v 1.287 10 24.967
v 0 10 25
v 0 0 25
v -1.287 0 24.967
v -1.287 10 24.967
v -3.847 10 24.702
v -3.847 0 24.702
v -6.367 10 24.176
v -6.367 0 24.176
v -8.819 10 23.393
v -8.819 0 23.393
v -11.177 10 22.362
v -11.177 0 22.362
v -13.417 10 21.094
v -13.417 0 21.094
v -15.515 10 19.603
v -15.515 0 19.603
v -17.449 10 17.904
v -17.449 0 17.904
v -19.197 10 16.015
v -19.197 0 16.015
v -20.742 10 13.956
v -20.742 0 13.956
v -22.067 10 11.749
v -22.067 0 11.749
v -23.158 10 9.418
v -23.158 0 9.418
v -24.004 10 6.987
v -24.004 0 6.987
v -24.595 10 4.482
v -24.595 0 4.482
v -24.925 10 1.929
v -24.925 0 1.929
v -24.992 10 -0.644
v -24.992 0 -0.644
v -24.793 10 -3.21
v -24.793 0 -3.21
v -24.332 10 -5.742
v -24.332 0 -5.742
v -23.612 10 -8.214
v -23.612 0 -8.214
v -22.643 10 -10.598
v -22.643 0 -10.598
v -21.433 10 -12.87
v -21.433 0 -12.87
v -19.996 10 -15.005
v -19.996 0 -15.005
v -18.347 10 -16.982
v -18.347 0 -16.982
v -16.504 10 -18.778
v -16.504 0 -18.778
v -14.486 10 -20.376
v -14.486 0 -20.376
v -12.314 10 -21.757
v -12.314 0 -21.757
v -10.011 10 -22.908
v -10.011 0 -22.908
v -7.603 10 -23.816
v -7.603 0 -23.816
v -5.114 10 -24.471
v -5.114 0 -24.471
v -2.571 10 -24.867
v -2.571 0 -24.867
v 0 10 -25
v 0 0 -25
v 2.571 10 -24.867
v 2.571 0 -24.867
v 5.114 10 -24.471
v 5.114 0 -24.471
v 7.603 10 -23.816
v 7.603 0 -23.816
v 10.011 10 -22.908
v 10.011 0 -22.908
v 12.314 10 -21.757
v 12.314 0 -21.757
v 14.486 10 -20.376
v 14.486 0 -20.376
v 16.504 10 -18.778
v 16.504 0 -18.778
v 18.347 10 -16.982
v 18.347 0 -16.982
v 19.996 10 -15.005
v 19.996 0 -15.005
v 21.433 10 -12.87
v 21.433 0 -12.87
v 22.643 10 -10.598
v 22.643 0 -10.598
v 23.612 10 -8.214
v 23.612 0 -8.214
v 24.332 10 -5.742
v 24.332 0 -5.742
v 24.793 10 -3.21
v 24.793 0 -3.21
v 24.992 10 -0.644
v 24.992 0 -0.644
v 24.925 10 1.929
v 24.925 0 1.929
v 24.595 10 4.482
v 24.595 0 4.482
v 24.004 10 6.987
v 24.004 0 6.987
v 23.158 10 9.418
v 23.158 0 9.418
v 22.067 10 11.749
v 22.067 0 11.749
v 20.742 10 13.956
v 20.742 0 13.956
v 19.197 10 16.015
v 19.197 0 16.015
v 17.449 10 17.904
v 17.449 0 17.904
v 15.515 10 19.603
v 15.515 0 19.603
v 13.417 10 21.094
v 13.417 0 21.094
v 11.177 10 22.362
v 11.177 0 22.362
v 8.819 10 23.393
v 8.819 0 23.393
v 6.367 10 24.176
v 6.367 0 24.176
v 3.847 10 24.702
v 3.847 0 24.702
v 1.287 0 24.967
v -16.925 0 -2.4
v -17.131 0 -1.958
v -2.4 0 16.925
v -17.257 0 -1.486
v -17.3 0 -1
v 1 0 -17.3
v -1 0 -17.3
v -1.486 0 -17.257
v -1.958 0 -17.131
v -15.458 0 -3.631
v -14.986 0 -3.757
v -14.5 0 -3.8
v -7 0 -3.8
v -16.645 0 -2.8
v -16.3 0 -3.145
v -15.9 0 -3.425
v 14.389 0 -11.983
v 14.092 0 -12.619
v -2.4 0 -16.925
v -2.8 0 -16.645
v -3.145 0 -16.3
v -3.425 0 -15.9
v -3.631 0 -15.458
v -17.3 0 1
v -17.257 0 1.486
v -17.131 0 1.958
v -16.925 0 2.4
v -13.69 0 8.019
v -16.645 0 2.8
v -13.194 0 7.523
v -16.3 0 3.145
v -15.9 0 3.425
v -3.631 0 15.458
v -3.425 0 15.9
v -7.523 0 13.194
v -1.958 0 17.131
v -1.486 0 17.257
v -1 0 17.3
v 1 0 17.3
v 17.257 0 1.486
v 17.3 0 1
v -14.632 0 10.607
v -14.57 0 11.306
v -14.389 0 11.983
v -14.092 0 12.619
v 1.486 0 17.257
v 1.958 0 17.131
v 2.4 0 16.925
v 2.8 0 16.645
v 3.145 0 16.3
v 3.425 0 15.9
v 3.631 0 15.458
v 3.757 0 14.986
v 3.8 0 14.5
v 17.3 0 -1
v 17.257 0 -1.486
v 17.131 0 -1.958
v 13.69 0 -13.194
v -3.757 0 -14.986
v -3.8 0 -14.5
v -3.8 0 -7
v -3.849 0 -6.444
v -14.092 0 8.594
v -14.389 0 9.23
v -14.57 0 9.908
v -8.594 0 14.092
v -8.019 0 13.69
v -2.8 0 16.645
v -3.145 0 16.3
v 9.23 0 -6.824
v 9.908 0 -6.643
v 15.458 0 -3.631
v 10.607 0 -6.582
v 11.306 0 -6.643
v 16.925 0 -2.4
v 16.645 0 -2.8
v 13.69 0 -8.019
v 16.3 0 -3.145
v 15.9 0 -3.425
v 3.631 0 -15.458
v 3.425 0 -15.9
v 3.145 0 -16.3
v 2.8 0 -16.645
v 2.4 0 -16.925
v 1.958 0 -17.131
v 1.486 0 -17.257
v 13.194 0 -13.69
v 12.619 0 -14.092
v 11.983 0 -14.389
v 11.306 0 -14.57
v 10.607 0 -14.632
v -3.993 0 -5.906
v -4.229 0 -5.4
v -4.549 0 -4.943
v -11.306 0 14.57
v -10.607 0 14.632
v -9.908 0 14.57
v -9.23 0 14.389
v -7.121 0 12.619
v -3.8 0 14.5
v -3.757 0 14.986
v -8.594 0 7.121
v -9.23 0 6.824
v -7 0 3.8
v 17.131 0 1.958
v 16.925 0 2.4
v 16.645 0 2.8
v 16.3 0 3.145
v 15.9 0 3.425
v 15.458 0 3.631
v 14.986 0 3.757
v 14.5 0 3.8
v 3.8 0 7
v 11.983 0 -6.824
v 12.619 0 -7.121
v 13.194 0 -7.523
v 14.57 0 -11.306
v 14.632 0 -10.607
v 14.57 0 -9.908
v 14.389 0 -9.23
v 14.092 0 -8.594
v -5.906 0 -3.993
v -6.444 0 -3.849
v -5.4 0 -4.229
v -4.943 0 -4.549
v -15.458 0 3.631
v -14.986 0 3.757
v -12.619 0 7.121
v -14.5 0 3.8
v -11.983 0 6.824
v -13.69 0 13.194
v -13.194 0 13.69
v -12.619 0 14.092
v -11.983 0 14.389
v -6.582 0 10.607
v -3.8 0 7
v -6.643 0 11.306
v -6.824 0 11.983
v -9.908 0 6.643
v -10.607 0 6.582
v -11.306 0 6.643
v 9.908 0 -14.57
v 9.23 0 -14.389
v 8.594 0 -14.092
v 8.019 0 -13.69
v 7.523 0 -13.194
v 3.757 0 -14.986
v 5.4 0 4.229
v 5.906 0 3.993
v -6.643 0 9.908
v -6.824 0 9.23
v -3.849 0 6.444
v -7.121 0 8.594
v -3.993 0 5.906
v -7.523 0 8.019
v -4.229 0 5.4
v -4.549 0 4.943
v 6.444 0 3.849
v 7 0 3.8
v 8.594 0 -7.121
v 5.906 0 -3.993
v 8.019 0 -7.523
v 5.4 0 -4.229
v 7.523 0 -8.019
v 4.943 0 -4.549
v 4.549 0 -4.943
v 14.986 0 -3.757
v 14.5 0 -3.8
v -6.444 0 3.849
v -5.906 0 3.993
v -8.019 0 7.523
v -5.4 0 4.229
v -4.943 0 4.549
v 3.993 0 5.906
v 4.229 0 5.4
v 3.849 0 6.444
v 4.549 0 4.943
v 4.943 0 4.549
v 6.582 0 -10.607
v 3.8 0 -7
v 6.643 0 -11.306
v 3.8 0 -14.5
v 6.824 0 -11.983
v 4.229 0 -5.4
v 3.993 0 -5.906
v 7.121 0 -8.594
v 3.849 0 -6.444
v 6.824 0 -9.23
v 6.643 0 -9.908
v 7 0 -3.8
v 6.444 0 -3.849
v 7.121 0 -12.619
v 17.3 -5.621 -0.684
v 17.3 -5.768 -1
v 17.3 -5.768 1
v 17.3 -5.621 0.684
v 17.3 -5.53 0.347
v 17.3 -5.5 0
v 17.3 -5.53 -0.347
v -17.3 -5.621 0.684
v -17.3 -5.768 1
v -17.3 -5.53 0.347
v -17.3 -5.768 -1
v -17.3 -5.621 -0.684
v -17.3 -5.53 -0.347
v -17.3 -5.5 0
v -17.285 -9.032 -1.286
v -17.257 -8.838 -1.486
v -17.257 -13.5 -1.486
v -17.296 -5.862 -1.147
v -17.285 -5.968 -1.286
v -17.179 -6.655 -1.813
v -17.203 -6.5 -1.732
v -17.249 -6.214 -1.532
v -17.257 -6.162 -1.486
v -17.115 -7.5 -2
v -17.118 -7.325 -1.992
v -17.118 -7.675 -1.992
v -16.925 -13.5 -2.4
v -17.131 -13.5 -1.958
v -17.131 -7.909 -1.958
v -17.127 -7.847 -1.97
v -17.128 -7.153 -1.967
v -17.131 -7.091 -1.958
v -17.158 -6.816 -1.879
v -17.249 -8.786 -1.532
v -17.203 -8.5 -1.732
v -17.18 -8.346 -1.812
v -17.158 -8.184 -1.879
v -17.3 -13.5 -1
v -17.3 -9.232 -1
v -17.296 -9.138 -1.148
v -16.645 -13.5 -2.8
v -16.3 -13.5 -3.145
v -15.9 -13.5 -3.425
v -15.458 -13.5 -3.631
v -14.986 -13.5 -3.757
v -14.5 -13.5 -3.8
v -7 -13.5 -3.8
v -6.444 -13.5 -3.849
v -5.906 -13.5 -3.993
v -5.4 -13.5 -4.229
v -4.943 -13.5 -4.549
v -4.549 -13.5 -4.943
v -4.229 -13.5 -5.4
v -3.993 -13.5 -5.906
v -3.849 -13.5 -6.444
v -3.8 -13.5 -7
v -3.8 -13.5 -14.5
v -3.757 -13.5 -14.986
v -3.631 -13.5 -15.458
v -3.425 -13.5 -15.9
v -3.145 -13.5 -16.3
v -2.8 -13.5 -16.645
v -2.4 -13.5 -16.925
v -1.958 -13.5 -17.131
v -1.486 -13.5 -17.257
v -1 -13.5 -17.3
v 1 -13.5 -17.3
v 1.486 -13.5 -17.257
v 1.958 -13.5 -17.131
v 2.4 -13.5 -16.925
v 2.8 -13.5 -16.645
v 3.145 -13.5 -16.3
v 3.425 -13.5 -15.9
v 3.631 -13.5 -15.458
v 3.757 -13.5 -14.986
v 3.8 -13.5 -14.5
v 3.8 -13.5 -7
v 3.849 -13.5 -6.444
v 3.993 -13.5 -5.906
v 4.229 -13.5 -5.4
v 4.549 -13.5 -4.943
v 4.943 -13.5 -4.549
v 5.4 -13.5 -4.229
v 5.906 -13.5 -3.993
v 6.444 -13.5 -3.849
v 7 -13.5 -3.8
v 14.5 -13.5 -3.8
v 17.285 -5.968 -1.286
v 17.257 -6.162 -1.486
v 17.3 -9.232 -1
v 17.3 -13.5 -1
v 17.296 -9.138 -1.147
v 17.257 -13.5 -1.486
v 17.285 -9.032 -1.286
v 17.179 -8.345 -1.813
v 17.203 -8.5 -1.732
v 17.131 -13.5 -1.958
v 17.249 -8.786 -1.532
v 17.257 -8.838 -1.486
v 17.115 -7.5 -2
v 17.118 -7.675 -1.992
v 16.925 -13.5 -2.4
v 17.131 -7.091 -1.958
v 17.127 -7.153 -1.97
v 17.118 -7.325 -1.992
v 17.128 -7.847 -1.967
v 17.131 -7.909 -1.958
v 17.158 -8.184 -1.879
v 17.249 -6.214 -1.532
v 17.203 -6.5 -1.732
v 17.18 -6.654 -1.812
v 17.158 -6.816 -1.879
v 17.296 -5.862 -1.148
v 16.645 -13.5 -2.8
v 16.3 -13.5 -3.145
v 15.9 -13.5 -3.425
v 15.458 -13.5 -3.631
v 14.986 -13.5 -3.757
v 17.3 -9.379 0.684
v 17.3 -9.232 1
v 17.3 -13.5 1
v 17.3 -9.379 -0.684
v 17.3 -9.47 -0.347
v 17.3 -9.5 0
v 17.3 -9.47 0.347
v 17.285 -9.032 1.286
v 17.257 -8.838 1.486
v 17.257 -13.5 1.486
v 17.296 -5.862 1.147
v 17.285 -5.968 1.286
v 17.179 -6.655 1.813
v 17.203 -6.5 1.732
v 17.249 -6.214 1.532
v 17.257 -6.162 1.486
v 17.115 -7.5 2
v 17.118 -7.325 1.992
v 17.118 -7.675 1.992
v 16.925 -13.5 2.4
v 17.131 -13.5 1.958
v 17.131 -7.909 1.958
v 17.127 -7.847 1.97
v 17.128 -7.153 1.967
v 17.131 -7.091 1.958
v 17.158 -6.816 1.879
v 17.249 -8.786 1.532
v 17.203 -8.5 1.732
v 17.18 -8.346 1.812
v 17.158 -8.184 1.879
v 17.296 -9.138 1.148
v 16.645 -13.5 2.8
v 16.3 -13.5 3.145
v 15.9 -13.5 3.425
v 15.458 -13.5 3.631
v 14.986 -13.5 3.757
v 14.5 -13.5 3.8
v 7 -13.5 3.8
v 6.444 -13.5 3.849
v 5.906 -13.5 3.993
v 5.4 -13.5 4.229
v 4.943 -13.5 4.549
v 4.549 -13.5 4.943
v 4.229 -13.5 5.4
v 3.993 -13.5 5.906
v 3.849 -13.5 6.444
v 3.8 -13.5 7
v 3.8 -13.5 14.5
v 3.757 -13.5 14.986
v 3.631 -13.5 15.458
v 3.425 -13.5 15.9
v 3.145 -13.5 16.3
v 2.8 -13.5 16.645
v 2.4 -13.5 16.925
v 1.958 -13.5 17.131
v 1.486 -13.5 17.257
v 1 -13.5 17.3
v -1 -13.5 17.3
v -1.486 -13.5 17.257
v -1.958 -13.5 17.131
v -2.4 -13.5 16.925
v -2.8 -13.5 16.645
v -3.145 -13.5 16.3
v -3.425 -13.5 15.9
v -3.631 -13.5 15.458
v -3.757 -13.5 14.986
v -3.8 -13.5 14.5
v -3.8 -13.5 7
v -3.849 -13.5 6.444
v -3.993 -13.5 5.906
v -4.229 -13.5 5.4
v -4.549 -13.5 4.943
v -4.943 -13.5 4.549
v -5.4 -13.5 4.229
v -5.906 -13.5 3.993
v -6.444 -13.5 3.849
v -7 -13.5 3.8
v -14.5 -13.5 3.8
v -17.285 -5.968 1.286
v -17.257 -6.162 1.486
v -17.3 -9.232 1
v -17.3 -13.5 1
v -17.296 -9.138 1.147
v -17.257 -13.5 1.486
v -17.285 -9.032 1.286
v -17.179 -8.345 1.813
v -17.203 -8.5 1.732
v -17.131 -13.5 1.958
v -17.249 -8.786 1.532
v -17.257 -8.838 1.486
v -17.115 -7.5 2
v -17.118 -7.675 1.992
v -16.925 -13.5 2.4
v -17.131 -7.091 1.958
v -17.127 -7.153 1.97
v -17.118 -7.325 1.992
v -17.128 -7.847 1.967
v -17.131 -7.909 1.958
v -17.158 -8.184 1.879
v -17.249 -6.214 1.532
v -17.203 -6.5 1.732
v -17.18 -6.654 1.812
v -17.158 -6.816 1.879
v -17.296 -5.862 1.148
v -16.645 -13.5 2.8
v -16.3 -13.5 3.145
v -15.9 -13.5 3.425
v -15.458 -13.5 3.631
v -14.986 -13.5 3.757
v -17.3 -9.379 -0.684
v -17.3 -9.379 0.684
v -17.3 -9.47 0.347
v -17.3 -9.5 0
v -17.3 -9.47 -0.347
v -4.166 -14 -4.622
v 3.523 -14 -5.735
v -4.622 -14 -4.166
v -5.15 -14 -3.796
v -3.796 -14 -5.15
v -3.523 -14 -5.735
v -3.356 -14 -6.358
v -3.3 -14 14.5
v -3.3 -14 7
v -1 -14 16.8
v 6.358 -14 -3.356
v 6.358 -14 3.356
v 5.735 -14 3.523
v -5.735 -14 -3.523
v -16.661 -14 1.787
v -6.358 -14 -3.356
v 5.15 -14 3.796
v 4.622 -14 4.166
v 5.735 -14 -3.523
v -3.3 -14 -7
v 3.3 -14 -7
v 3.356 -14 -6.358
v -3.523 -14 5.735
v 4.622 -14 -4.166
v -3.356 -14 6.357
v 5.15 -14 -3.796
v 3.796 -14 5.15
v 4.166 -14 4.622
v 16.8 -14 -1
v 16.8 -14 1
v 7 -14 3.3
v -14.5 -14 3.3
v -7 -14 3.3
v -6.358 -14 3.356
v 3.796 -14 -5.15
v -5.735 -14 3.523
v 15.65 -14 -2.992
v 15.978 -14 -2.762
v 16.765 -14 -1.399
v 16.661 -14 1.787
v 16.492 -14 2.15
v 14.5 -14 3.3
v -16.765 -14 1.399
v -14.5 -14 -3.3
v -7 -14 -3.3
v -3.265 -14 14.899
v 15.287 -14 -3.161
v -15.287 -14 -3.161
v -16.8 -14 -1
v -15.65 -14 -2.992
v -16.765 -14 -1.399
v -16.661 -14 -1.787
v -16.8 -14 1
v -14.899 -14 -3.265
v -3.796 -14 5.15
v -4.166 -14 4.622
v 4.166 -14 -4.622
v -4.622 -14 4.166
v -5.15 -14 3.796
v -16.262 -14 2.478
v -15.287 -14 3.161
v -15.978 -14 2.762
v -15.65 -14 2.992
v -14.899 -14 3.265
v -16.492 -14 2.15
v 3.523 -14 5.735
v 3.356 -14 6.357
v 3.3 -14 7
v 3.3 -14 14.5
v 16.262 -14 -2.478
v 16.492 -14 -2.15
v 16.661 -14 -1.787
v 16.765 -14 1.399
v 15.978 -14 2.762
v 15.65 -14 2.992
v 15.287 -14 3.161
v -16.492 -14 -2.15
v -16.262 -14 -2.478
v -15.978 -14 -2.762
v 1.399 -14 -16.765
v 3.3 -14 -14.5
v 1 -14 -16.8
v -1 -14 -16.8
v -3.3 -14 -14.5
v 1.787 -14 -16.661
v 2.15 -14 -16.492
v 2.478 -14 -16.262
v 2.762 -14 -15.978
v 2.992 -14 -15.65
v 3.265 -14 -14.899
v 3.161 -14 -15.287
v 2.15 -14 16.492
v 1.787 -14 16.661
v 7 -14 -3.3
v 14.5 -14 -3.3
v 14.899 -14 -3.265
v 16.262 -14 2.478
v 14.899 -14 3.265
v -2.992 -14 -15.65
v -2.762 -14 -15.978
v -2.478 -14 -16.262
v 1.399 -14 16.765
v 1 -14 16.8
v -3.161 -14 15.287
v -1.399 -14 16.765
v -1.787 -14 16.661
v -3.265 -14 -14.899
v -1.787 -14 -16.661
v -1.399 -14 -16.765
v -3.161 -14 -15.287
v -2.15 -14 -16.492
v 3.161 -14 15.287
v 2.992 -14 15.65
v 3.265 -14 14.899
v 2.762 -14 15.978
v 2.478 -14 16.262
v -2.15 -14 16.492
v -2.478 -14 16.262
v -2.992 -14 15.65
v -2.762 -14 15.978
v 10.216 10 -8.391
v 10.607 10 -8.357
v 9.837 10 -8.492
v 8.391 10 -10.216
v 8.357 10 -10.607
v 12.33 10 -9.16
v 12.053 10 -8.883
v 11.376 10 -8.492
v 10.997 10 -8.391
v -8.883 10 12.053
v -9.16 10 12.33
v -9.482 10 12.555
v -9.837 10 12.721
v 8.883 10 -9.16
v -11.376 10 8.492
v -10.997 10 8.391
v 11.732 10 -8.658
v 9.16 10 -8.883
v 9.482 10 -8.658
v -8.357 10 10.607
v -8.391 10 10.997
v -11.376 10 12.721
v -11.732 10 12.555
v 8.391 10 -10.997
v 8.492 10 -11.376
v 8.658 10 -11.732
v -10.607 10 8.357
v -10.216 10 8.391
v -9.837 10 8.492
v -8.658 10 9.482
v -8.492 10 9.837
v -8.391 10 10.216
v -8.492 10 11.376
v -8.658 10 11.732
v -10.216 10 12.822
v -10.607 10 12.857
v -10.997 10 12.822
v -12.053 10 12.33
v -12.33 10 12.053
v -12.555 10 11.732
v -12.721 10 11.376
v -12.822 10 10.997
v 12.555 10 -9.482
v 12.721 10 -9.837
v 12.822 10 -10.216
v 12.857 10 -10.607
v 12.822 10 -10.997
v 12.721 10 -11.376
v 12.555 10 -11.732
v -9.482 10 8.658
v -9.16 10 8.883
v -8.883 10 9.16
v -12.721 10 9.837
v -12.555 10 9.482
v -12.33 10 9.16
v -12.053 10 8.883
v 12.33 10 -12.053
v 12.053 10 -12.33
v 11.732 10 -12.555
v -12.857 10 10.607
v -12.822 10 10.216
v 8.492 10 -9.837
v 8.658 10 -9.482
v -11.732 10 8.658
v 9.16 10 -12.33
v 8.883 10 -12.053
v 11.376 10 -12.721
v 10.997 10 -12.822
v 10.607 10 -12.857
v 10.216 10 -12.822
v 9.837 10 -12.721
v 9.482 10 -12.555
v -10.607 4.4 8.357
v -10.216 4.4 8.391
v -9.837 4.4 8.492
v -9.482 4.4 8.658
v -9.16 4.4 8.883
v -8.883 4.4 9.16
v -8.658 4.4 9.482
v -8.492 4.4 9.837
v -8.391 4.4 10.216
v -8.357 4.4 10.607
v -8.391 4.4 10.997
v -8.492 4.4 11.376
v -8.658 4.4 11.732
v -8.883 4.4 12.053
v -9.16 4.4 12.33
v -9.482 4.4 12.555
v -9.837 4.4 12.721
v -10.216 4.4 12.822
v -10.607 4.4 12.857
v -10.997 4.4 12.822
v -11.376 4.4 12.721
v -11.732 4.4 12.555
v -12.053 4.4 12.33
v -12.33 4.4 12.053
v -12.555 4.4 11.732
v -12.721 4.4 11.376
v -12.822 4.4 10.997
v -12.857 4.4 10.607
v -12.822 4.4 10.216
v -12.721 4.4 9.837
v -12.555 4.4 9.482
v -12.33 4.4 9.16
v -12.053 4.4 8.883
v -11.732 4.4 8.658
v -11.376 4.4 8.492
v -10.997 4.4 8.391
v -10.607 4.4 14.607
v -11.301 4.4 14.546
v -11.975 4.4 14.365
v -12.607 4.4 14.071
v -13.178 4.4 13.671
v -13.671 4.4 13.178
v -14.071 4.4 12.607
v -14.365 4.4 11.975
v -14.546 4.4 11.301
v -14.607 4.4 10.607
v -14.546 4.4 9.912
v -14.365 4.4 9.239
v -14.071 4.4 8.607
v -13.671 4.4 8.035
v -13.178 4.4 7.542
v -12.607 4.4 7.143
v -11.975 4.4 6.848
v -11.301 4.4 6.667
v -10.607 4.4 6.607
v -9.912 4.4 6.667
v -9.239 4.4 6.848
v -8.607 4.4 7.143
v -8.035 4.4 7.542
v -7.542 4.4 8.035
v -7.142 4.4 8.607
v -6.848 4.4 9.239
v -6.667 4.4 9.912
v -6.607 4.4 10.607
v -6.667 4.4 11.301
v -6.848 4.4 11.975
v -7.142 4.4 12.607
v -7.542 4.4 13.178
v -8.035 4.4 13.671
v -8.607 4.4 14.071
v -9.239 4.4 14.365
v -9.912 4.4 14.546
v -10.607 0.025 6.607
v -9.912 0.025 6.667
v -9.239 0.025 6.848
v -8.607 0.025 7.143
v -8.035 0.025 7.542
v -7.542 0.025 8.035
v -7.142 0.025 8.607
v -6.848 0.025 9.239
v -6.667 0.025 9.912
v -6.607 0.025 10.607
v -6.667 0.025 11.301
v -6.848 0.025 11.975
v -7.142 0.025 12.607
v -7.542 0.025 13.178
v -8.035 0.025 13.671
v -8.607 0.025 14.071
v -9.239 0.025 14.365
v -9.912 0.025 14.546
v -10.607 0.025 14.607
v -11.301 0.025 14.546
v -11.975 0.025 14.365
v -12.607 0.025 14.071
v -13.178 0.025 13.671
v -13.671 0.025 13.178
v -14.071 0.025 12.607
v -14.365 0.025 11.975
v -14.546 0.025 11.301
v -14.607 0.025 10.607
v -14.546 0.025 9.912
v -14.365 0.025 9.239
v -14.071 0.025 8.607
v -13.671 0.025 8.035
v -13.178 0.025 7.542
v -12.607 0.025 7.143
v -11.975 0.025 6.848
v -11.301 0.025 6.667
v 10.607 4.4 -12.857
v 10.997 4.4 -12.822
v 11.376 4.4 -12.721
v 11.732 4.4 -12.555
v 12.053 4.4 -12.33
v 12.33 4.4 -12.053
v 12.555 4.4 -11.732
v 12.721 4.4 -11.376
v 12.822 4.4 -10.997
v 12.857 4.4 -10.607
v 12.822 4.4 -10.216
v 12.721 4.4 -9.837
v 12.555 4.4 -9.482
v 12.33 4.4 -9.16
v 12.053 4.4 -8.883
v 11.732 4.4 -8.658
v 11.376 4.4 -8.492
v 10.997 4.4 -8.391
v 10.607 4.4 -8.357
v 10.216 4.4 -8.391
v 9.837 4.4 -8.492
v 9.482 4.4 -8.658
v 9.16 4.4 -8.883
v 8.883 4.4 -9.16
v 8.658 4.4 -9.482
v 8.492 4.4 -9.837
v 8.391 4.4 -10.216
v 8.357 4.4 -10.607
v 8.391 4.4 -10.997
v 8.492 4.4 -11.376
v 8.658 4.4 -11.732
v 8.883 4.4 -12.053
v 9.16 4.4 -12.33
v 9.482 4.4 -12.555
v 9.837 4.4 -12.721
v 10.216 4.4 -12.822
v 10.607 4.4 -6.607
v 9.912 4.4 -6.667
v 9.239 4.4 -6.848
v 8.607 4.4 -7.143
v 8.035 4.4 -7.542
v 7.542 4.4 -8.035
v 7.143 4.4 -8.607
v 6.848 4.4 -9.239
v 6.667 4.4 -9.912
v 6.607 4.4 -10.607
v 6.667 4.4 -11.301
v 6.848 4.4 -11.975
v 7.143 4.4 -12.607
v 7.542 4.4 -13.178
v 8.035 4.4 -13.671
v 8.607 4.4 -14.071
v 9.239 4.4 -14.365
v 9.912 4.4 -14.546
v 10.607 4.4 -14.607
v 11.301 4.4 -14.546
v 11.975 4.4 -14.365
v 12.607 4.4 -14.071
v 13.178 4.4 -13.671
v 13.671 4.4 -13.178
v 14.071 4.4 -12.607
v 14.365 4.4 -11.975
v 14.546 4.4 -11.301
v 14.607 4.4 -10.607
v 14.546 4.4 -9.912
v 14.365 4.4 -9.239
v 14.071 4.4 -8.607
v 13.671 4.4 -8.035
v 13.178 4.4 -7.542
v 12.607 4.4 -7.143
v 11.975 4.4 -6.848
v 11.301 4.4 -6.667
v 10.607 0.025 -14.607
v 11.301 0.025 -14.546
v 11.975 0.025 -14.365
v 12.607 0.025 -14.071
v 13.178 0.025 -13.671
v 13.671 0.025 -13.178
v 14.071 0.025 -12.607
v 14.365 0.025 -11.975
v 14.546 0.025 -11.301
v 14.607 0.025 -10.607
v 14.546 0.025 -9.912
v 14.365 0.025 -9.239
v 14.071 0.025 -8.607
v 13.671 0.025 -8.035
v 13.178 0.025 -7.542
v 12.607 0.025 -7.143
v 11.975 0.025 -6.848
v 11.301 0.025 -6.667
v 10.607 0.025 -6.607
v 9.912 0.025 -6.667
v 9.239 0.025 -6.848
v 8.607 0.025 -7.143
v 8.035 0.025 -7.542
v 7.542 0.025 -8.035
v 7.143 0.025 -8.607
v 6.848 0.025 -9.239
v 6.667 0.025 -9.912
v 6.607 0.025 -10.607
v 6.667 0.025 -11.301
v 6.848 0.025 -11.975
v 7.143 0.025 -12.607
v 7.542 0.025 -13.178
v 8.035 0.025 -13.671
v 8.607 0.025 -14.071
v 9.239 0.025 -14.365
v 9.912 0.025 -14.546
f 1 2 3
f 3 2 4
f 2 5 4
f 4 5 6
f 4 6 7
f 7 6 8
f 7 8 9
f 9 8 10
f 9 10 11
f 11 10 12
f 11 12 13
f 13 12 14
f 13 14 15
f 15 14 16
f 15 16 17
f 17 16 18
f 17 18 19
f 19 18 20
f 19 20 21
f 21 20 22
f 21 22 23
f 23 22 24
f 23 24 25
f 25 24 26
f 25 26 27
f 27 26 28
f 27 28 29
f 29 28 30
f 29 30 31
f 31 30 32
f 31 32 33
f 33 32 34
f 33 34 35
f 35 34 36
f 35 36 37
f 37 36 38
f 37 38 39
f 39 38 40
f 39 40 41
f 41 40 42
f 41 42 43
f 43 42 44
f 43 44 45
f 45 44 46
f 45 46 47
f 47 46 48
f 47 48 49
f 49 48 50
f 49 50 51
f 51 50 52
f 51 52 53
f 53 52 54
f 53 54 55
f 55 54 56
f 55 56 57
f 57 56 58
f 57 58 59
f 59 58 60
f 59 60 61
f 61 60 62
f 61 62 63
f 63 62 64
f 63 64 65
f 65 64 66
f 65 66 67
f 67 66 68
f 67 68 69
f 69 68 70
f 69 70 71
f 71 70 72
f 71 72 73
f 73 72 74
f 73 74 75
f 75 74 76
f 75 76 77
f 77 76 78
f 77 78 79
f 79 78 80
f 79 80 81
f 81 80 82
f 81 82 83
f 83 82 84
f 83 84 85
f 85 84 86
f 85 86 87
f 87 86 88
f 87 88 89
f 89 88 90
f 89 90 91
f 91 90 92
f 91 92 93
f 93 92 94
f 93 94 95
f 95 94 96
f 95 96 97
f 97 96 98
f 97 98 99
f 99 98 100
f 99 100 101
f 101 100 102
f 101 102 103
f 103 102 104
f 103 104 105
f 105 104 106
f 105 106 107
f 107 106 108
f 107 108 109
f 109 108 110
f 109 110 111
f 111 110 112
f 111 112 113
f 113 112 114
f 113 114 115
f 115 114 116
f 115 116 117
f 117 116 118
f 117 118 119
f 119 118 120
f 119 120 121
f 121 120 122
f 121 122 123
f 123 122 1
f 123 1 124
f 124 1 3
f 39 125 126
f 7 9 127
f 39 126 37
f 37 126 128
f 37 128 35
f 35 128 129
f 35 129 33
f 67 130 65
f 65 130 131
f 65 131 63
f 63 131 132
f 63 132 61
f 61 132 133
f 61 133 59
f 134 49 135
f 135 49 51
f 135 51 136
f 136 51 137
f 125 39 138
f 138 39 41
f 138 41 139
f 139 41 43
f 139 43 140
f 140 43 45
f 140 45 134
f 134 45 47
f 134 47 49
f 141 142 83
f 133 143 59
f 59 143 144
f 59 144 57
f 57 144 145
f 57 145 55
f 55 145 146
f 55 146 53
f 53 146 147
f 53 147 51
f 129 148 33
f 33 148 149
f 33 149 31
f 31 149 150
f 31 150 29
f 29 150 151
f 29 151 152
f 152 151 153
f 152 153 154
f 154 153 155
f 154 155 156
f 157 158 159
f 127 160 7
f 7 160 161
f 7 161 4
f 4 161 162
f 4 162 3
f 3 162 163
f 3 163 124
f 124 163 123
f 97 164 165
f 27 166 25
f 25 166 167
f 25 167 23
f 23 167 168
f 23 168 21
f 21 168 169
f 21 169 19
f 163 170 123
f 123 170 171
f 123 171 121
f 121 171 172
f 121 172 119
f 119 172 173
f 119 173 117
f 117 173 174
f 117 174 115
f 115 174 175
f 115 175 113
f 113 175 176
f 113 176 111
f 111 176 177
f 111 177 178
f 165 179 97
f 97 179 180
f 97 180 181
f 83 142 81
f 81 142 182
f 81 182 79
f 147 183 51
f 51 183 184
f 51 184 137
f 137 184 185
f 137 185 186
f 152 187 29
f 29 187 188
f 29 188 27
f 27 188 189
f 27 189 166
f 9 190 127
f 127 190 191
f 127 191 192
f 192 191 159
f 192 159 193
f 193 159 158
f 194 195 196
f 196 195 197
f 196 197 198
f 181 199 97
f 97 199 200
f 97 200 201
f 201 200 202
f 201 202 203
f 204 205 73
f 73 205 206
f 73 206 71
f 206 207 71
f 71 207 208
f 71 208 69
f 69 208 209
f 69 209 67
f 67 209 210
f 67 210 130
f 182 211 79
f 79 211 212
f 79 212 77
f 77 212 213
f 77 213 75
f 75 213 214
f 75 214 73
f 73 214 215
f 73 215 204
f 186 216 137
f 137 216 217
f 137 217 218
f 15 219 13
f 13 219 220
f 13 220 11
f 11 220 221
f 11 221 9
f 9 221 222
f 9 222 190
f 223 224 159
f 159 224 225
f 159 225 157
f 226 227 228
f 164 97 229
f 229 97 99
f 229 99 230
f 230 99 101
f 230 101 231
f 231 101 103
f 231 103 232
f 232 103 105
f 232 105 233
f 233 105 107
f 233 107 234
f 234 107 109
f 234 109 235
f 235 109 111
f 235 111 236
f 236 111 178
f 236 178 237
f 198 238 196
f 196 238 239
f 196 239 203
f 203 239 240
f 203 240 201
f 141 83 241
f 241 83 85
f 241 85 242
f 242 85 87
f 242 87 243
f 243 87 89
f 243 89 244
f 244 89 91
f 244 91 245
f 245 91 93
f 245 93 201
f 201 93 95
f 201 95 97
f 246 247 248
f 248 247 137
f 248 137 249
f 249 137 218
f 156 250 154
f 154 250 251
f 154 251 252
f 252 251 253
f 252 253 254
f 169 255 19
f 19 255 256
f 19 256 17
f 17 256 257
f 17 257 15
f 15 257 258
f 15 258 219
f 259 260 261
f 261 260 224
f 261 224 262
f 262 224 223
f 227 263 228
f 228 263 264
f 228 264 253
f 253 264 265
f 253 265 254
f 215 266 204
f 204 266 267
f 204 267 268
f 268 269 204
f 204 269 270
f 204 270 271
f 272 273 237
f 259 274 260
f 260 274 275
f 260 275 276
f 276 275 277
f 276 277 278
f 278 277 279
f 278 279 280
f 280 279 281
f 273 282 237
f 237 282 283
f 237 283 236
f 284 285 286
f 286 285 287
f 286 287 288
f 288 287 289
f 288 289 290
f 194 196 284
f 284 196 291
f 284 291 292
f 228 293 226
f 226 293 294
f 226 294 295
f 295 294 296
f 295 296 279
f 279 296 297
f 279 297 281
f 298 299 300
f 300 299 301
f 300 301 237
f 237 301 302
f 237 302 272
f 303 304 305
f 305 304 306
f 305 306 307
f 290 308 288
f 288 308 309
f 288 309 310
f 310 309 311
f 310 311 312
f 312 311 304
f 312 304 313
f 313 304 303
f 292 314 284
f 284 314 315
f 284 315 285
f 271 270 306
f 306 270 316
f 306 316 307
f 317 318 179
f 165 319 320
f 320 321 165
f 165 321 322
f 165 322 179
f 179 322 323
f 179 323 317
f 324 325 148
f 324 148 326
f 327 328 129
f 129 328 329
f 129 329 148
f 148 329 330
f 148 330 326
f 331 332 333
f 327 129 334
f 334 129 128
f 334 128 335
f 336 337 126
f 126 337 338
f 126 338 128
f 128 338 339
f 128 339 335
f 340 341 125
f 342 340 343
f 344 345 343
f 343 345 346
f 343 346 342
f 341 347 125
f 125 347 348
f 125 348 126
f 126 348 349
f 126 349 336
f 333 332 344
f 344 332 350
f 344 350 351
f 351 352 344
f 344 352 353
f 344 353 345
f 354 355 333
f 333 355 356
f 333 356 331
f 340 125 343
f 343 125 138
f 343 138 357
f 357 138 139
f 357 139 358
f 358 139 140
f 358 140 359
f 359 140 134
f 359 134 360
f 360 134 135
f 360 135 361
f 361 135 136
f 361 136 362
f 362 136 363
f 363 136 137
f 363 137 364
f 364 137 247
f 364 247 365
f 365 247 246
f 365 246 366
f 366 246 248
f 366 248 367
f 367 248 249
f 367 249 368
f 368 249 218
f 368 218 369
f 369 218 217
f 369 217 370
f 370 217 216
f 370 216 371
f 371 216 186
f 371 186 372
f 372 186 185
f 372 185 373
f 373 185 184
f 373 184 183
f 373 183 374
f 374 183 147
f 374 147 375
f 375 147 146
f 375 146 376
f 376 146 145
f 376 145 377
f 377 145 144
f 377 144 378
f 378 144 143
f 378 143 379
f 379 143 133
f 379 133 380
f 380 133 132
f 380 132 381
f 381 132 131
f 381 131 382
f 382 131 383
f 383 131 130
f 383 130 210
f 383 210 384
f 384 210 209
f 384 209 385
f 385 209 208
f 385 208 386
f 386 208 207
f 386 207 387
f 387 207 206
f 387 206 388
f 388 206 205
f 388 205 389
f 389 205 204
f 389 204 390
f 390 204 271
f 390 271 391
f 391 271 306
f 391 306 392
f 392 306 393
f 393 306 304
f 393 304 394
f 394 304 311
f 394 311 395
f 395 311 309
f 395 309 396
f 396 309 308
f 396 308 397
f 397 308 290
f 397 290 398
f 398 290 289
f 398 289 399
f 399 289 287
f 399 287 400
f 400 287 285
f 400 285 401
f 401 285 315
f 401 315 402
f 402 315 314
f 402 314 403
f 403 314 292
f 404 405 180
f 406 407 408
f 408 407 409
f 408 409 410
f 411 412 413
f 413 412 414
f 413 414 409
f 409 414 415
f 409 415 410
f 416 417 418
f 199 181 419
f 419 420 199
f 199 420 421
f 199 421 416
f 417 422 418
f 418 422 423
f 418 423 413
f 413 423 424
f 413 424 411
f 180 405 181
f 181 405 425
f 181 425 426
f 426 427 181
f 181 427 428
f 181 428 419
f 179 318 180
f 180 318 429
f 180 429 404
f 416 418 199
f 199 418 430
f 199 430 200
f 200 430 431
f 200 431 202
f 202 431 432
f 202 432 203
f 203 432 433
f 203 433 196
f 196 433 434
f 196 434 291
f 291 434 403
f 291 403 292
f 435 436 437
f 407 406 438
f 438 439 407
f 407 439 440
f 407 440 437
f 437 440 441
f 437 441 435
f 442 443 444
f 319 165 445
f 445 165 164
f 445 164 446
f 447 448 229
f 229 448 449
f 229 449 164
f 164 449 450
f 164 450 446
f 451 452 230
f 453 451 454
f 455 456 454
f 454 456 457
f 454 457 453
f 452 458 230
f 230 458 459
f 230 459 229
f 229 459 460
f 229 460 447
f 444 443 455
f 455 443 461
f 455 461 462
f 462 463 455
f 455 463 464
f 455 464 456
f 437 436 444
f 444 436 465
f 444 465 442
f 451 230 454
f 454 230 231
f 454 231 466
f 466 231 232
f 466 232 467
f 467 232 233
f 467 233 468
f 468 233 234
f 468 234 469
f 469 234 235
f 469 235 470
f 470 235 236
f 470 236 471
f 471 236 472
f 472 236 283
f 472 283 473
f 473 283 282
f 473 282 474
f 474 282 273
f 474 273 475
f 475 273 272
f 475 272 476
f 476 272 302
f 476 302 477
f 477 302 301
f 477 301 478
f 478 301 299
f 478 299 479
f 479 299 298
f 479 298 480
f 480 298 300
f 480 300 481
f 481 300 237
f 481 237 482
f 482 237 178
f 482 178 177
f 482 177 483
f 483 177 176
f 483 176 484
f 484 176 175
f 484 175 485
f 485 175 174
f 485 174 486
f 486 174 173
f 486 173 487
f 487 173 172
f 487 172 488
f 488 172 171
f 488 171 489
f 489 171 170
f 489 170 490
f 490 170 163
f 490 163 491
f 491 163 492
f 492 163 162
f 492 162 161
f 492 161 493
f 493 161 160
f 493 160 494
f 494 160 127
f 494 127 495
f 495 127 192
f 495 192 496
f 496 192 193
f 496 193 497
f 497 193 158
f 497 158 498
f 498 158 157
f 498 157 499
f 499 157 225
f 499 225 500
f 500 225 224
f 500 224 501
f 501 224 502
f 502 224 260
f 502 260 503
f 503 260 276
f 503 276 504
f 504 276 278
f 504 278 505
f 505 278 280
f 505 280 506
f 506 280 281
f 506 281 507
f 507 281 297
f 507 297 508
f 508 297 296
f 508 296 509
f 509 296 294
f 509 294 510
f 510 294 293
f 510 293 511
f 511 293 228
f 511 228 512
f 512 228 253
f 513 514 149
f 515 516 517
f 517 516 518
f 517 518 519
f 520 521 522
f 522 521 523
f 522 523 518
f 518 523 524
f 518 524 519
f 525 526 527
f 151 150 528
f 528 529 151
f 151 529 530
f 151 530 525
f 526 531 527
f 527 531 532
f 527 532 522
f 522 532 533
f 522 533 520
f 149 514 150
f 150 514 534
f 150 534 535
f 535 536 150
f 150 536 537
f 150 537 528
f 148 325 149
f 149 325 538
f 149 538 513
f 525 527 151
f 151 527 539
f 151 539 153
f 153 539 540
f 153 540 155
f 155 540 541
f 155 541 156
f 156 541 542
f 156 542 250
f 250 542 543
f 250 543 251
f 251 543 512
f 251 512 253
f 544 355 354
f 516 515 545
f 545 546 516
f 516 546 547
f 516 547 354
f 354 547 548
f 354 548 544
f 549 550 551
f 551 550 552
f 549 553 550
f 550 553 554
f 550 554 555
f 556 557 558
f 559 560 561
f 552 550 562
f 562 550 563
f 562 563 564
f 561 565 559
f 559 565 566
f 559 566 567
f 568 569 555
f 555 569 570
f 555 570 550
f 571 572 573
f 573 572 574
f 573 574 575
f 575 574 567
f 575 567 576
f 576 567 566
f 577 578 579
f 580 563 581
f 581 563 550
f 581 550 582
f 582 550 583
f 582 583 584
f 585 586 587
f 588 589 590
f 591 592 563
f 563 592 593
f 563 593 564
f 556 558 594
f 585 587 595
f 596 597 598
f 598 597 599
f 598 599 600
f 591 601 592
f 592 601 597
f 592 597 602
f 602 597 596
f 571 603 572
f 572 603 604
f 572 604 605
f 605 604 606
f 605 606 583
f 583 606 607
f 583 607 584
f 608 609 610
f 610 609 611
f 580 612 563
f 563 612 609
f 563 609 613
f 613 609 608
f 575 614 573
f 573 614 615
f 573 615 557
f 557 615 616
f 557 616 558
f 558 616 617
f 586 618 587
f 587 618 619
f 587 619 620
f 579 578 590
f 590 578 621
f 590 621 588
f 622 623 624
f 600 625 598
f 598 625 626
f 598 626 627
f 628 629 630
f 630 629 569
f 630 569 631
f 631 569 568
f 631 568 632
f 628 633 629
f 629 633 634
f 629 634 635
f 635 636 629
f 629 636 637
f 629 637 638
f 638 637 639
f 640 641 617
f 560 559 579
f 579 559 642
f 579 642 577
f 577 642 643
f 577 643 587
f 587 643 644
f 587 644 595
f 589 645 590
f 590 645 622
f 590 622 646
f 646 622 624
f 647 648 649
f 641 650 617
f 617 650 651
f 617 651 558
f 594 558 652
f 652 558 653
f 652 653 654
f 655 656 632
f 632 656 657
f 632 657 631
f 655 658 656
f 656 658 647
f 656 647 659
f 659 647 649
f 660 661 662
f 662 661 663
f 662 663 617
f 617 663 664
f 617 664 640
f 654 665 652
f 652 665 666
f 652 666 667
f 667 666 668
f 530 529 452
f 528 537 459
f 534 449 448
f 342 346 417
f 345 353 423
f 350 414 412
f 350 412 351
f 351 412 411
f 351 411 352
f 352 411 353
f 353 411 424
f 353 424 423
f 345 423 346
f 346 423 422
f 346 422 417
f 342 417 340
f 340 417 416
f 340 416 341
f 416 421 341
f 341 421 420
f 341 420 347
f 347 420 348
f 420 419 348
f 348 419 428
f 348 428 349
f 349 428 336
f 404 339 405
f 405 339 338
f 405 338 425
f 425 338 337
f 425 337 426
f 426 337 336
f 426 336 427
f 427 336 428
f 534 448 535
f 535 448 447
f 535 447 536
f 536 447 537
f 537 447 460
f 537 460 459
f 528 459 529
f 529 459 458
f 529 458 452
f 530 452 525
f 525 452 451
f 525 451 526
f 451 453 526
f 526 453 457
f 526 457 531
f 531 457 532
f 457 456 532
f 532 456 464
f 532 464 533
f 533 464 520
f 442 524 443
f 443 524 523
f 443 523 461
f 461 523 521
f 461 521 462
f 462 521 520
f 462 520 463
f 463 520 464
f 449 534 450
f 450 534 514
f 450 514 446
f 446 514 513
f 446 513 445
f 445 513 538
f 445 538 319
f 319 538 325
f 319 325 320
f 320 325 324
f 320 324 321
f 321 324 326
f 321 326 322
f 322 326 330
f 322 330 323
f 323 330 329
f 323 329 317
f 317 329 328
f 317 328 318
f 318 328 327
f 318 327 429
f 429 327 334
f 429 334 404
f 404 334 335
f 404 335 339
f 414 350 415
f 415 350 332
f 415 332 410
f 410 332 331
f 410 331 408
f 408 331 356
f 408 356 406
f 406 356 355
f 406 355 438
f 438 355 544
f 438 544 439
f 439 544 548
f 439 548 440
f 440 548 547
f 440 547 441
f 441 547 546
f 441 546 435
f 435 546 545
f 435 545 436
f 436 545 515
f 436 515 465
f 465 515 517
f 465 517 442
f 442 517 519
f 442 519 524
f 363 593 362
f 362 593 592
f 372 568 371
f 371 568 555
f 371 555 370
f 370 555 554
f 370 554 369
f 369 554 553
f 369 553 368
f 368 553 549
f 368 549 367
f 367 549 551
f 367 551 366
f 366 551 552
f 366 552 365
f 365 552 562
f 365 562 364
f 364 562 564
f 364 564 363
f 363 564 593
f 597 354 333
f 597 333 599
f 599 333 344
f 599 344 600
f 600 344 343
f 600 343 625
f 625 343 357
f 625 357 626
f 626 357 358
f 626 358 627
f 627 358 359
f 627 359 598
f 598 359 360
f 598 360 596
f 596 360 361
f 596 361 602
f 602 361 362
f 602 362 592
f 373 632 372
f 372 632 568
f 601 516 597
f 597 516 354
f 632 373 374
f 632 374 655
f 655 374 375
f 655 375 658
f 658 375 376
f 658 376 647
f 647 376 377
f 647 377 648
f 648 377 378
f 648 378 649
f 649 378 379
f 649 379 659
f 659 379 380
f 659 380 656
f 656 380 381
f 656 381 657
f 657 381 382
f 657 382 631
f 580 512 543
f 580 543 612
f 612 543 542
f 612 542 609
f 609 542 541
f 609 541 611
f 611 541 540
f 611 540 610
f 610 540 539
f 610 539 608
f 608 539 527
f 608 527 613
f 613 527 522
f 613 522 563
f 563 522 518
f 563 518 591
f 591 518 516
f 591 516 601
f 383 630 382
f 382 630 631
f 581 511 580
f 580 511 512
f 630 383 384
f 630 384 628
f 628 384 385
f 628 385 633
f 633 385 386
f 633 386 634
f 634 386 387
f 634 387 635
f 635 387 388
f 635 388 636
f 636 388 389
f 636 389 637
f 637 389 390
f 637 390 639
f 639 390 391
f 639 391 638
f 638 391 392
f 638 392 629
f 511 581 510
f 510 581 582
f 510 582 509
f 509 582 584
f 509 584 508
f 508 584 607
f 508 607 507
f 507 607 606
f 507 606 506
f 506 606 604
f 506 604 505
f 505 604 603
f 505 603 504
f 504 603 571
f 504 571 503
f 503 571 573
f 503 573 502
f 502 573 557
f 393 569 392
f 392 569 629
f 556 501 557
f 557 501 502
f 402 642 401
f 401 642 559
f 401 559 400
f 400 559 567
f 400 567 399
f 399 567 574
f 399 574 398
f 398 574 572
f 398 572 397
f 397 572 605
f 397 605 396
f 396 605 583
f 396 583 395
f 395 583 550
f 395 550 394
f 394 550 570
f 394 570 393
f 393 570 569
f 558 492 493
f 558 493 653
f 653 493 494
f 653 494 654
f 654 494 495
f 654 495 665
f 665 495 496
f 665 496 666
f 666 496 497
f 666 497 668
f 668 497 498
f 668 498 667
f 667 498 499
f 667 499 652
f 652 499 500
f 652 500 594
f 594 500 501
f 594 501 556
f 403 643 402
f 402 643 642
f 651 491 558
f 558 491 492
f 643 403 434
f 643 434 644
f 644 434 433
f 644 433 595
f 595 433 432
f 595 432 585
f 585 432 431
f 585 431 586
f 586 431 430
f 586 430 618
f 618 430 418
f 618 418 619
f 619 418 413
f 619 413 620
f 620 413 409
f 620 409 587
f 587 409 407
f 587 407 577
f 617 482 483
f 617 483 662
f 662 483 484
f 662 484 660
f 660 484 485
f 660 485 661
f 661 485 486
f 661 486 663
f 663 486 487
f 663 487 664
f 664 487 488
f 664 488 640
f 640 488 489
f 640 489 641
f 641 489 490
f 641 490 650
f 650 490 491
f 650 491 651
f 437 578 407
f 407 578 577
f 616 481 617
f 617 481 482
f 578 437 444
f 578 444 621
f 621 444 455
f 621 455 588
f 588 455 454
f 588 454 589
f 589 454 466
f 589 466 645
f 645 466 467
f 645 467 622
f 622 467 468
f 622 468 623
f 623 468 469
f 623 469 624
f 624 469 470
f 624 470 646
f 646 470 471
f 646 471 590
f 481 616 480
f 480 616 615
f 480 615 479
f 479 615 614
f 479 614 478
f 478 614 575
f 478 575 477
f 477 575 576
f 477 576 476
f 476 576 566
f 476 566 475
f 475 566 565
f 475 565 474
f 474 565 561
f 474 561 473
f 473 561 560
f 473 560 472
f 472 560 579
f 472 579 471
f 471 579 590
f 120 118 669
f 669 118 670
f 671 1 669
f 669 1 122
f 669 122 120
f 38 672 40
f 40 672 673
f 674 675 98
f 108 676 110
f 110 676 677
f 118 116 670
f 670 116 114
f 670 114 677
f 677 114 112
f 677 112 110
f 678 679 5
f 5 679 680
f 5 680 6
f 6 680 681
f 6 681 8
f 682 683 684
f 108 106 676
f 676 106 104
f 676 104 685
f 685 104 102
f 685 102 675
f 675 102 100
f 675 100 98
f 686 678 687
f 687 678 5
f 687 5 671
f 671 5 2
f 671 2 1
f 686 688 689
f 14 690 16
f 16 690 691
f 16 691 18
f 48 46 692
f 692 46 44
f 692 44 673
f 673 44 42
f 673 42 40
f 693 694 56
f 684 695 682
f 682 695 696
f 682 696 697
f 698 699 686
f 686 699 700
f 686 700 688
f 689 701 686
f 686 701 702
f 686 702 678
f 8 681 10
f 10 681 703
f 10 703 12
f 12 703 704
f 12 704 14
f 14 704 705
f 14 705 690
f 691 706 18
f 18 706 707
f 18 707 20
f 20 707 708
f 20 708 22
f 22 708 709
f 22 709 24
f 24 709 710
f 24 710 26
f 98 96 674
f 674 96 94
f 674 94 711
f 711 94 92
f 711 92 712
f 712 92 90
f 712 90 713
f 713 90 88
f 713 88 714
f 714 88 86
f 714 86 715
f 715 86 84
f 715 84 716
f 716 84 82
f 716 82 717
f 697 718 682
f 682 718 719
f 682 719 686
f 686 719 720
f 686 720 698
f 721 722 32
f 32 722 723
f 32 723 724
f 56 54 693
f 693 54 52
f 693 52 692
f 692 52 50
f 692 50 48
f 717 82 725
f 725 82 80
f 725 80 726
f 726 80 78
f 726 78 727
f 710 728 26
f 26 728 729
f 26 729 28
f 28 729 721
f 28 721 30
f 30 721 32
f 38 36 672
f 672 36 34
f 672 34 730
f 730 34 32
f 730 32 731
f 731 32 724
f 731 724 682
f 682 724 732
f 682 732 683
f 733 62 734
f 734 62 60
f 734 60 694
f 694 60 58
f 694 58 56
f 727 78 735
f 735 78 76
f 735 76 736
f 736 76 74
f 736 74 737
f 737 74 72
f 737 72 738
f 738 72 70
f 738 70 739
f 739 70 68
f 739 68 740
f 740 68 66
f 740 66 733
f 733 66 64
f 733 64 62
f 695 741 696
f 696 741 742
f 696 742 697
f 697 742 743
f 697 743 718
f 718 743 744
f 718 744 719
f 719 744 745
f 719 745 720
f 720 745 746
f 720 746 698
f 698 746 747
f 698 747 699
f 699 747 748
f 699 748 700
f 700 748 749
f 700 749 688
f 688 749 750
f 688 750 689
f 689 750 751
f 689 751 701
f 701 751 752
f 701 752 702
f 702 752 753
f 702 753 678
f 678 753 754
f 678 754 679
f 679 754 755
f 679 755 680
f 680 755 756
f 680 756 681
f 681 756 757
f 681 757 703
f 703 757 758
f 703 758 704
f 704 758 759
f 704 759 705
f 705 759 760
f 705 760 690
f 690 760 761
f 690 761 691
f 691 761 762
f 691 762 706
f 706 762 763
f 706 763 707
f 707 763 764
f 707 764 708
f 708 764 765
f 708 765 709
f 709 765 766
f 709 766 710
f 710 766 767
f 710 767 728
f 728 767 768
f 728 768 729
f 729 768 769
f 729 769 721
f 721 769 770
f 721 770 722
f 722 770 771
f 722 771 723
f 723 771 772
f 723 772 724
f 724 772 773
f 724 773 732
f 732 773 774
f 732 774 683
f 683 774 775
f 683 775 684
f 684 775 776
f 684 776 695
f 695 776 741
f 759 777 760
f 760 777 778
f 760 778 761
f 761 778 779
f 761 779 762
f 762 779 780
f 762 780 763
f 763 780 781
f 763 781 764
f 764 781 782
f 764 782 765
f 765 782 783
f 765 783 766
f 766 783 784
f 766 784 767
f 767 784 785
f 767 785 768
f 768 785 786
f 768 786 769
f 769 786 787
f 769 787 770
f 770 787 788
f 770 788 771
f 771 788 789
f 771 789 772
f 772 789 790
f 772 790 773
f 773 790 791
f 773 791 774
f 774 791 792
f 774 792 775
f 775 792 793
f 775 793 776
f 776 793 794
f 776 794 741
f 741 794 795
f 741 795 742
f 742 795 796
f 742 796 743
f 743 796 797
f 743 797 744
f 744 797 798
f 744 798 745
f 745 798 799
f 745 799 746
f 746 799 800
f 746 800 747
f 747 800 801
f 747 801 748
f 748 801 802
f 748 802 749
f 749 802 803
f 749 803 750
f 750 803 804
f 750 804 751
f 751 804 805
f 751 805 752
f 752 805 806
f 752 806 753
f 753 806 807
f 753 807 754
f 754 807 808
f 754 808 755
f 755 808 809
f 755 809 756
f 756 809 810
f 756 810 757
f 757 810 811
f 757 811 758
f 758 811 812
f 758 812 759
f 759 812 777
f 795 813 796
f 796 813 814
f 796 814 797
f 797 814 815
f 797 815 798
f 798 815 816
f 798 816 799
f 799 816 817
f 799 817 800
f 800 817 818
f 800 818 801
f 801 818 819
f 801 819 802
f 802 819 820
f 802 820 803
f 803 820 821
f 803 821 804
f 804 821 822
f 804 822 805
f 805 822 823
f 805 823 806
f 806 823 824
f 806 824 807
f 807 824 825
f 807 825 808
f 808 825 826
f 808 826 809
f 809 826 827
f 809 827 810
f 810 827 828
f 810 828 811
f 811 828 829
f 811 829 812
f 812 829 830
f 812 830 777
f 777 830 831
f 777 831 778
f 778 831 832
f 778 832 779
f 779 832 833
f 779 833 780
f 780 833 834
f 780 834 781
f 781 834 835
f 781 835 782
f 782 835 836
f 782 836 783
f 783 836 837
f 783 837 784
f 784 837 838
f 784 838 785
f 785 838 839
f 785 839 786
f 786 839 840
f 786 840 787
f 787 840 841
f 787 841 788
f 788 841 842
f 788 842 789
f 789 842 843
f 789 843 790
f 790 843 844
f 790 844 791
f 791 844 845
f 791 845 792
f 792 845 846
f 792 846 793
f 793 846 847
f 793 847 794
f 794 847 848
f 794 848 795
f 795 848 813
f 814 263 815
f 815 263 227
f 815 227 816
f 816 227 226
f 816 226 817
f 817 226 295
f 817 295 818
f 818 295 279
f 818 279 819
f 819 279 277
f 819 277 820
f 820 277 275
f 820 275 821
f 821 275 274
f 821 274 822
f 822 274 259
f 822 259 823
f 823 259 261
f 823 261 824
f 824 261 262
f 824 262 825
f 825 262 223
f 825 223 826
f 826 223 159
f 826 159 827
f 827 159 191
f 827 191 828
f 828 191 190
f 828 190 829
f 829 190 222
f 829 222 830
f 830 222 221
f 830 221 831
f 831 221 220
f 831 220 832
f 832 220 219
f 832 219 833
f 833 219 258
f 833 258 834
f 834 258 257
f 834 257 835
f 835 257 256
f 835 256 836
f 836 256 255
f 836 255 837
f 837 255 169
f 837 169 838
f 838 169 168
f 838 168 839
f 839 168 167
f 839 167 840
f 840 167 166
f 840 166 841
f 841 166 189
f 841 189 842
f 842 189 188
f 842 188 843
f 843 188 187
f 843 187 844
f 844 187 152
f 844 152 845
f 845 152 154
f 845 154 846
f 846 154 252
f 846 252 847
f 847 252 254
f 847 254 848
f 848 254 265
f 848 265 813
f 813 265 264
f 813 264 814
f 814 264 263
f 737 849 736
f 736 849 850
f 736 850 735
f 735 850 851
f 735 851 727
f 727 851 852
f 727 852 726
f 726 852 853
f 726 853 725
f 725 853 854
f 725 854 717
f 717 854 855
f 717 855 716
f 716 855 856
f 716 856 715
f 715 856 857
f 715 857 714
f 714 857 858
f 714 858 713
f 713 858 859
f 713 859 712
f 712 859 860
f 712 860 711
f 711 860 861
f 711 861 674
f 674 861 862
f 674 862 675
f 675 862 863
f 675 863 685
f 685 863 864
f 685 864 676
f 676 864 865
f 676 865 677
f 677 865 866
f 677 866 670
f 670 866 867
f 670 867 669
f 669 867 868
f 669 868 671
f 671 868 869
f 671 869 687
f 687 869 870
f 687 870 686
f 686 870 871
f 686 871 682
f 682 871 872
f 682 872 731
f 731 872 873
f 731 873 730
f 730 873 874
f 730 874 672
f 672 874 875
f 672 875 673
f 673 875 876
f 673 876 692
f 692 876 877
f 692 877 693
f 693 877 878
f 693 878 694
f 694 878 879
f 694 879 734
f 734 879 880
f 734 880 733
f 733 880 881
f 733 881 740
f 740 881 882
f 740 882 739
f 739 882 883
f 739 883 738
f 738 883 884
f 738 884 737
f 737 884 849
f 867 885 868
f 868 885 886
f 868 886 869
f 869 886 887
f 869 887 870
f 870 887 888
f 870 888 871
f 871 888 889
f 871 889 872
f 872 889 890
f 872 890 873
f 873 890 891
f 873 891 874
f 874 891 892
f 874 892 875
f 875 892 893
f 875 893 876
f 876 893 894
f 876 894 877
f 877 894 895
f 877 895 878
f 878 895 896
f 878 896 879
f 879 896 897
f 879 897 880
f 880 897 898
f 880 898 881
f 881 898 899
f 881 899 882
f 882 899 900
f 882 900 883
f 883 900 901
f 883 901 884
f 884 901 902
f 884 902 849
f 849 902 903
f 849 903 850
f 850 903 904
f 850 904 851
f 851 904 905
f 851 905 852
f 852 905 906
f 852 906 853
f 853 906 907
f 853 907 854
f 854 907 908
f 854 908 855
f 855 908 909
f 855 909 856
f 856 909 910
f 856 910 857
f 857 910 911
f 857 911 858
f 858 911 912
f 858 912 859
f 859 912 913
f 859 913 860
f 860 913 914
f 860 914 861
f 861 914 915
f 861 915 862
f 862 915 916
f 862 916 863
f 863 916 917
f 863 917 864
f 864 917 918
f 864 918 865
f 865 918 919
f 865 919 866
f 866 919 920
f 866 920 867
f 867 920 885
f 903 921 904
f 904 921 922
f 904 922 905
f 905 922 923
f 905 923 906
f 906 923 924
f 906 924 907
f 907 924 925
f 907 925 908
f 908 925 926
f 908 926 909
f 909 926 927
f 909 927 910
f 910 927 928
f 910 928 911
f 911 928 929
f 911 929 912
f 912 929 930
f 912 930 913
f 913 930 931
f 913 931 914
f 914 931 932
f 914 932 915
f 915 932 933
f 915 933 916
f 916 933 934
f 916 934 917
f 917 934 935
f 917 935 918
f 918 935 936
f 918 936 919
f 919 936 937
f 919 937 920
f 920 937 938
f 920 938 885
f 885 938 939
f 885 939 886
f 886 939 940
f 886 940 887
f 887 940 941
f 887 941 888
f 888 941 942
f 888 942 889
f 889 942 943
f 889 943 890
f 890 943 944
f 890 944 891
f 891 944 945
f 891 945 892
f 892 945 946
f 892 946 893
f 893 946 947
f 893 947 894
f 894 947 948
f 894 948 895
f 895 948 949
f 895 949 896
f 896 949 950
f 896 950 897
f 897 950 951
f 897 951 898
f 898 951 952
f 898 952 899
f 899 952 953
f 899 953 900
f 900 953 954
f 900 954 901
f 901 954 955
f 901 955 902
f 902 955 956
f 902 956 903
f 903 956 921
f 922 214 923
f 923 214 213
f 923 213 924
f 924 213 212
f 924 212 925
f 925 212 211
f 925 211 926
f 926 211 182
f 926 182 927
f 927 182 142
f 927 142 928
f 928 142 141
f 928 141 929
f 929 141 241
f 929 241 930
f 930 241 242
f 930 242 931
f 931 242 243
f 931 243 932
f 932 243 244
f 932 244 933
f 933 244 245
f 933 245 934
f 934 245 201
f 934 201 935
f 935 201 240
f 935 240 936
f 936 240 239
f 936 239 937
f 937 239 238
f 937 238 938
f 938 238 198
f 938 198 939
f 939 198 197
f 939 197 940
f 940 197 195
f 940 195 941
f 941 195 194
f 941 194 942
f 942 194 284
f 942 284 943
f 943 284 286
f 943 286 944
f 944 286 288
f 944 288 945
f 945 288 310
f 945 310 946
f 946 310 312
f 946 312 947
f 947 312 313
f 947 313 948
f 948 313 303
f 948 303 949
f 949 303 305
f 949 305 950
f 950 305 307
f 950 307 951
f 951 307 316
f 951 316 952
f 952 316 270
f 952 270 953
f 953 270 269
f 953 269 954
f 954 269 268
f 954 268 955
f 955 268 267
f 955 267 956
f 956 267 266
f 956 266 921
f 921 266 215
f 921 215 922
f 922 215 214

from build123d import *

# Parameters (mm, degrees)
SKETCH1_R                                    = 25
BOSS_EXTRUDE1_DEPTH                          = 25
BOSS_EXTRUDE2_DEPTH                          = 14
SKETCH3_R                                    = 2
CUT_EXTRUDE1_DEPTH                           = 56.129756031
CHAMFER1_SIZE                                = 0.5
CUT_EXTRUDE3_DEPTH                           = 15
CBORE_FOR_M4_HEX_SOCKET_HEAD_CAP_SCR_2_COUNT = 2
CBORE_FOR_M4_HEX_SOCKET_HEAD_CAP_SCR_2_PITCH = 30
CUT_EXTRUDE4_START                           = -15
CUT_EXTRUDE4_DEPTH                           = 15


with BuildPart() as part:
    # Sketch1 → Boss-Extrude1 (new body)
    with BuildSketch(Plane(origin=(0, 0, 0), x_dir=(1, 0, 0), z_dir=(0, 1, 0))):
        with Locations(Location((0, 0, 0), (0, 0, 270))):
            Circle(SKETCH1_R)
    extrude(amount=BOSS_EXTRUDE1_DEPTH)

    # Sketch2 → Boss-Extrude2 (add)
    with BuildSketch(Plane.XZ):
        with BuildLine():
            Line((-17.3, 1), (-17.3, -1))
            ThreePointArc((-17.3, -1), (-16.479898987, -2.979898987), (-14.5, -3.8))
            Line((-14.5, -3.8), (-7, -3.8))
            ThreePointArc((-7, -3.8), (-4.7372583, -4.7372583), (-3.8, -7))
            Line((-3.8, -7), (-3.8, -14.5))
            ThreePointArc((-3.8, -14.5), (-2.979898987, -16.479898987), (-1, -17.3))
            Line((-1, -17.3), (1, -17.3))
            ThreePointArc((1, -17.3), (2.979898987, -16.479898987), (3.8, -14.5))
            Line((3.8, -14.5), (3.8, -7))
            ThreePointArc((3.8, -7), (4.7372583, -4.7372583), (7, -3.8))
            Line((7, -3.8), (14.5, -3.8))
            ThreePointArc((14.5, -3.8), (16.479898987, -2.979898987), (17.3, -1))
            Line((17.3, -1), (17.3, 1))
            ThreePointArc((17.3, 1), (16.479898987, 2.979898987), (14.5, 3.8))
            Line((14.5, 3.8), (7, 3.8))
            ThreePointArc((7, 3.8), (4.7372583, 4.7372583), (3.8, 7))
            Line((3.8, 7), (3.8, 14.5))
            ThreePointArc((3.8, 14.5), (2.979898987, 16.479898987), (1, 17.3))
            Line((1, 17.3), (-1, 17.3))
            ThreePointArc((-1, 17.3), (-2.979898987, 16.479898987), (-3.8, 14.5))
            Line((-3.8, 14.5), (-3.8, 7))
            ThreePointArc((-3.8, 7), (-4.7372583, 4.7372583), (-7, 3.8))
            Line((-7, 3.8), (-14.5, 3.8))
            ThreePointArc((-14.5, 3.8), (-16.479898987, 2.979898987), (-17.3, 1))
        make_face()
    extrude(amount=BOSS_EXTRUDE2_DEPTH)

    # Sketch3 → Cut-Extrude1 (cut, through all)
    with BuildSketch(Plane.ZY.offset(17.3)):
        with Locations(Location((0, -7.5, 0), (0, 0, 60))):
            Circle(SKETCH3_R)
    extrude(amount=-CUT_EXTRUDE1_DEPTH, mode=Mode.SUBTRACT)

    # Chamfer1
    chamfer1_edges = [part.edges().sort_by_distance(p)[0] for p in [
        (-16.479898987, -14, -2.979898987),
        (-10.75, -14, -3.8),
        (-4.7372583, -14, -4.7372583),
        (-3.8, -14, -10.75),
        (-2.979898987, -14, -16.479898987),
        (0, -14, -17.3),
        (2.979898987, -14, -16.479898987),
        (3.8, -14, -10.75),
        (4.7372583, -14, -4.7372583),
        (10.75, -14, -3.8),
        (16.479898987, -14, -2.979898987),
        (17.3, -14, 0),
        (16.479898987, -14, 2.979898987),
        (10.75, -14, 3.8),
        (4.7372583, -14, 4.7372583),
        (3.8, -14, 10.75),
        (2.979898987, -14, 16.479898987),
        (0, -14, 17.3),
        (-2.979898987, -14, 16.479898987),
        (-3.8, -14, 10.75),
        (-4.7372583, -14, 4.7372583),
        (-10.75, -14, 3.8),
        (-16.479898987, -14, 2.979898987),
        (-17.3, -14, 0),
    ]]
    chamfer(chamfer1_edges, length=CHAMFER1_SIZE)

    # Sketch7 → Cut-Extrude3 (cut)
    with BuildSketch(Plane(origin=(0, 25, 0), x_dir=(1, 0, 0), z_dir=(0, 1, 0))):
        with BuildLine():
            Line((-25.358862505, -19.065612153), (19.065612153, 25.358862505))
            ThreePointArc((19.065612153, 25.358862505), (25.358862505, 25.358862505), (25.358862505, 19.065612153))
            Line((25.358862505, 19.065612153), (-19.065612153, -25.358862505))
            ThreePointArc((-19.065612153, -25.358862505), (-25.358862505, -25.358862505), (-25.358862505, -19.065612153))
        make_face()
    extrude(amount=-CUT_EXTRUDE3_DEPTH, mode=Mode.SUBTRACT)

    # Sketch6 → CBORE for M4 Hex Socket Head Cap Screw1 (revolve, cut)
    with BuildSketch(Plane(origin=(10.606601718, 0, -10.606601718), x_dir=(0, 0, -1), z_dir=(1, 0, 0))):
        Polygon((0, 0), (0, 14.351936393), (2.25, 13), (2.25, 4.4), (4, 4.4), (4, 0.025), (4.025, 0), align=None)
    cbore_for_m4_hex_socket_head_cap_screw1 = revolve(axis=Axis((10.606601718, -6.35, -10.606601718), (0, 1, 0)), mode=Mode.SUBTRACT)

    # CBORE for M4 Hex Socket Head Cap Scr 2: CBORE for M4 Hex Socket Head Cap Screw1 ×2
    with Locations(*[Vector(-0.707106781186549, 0, 0.7071067811865461) * (i * CBORE_FOR_M4_HEX_SOCKET_HEAD_CAP_SCR_2_PITCH) for i in range(1, CBORE_FOR_M4_HEX_SOCKET_HEAD_CAP_SCR_2_COUNT)]):
        add(cbore_for_m4_hex_socket_head_cap_screw1, mode=Mode.SUBTRACT)

    # Sketch8 → Cut-Extrude4 (cut)
    with BuildSketch(Plane(origin=(0, 25, 0), x_dir=(1, 0, 0), z_dir=(0, 1, 0)).offset(CUT_EXTRUDE4_START)):
        with BuildLine():
            Line((20.541990938, 14.248740586), (-14.248740586, -20.541990938))
            ThreePointArc((-14.248740586, -20.541990938), (17.67766953, -17.67766953), (20.541990938, 14.248740586))
        make_face()
        with BuildLine():
            Line((-20.541990938, -14.248740586), (14.248740586, 20.541990938))
            ThreePointArc((14.248740586, 20.541990938), (-17.67766953, 17.67766953), (-20.541990938, -14.248740586))
        make_face()
    extrude(amount=CUT_EXTRUDE4_DEPTH, mode=Mode.SUBTRACT)


solid = part.part
